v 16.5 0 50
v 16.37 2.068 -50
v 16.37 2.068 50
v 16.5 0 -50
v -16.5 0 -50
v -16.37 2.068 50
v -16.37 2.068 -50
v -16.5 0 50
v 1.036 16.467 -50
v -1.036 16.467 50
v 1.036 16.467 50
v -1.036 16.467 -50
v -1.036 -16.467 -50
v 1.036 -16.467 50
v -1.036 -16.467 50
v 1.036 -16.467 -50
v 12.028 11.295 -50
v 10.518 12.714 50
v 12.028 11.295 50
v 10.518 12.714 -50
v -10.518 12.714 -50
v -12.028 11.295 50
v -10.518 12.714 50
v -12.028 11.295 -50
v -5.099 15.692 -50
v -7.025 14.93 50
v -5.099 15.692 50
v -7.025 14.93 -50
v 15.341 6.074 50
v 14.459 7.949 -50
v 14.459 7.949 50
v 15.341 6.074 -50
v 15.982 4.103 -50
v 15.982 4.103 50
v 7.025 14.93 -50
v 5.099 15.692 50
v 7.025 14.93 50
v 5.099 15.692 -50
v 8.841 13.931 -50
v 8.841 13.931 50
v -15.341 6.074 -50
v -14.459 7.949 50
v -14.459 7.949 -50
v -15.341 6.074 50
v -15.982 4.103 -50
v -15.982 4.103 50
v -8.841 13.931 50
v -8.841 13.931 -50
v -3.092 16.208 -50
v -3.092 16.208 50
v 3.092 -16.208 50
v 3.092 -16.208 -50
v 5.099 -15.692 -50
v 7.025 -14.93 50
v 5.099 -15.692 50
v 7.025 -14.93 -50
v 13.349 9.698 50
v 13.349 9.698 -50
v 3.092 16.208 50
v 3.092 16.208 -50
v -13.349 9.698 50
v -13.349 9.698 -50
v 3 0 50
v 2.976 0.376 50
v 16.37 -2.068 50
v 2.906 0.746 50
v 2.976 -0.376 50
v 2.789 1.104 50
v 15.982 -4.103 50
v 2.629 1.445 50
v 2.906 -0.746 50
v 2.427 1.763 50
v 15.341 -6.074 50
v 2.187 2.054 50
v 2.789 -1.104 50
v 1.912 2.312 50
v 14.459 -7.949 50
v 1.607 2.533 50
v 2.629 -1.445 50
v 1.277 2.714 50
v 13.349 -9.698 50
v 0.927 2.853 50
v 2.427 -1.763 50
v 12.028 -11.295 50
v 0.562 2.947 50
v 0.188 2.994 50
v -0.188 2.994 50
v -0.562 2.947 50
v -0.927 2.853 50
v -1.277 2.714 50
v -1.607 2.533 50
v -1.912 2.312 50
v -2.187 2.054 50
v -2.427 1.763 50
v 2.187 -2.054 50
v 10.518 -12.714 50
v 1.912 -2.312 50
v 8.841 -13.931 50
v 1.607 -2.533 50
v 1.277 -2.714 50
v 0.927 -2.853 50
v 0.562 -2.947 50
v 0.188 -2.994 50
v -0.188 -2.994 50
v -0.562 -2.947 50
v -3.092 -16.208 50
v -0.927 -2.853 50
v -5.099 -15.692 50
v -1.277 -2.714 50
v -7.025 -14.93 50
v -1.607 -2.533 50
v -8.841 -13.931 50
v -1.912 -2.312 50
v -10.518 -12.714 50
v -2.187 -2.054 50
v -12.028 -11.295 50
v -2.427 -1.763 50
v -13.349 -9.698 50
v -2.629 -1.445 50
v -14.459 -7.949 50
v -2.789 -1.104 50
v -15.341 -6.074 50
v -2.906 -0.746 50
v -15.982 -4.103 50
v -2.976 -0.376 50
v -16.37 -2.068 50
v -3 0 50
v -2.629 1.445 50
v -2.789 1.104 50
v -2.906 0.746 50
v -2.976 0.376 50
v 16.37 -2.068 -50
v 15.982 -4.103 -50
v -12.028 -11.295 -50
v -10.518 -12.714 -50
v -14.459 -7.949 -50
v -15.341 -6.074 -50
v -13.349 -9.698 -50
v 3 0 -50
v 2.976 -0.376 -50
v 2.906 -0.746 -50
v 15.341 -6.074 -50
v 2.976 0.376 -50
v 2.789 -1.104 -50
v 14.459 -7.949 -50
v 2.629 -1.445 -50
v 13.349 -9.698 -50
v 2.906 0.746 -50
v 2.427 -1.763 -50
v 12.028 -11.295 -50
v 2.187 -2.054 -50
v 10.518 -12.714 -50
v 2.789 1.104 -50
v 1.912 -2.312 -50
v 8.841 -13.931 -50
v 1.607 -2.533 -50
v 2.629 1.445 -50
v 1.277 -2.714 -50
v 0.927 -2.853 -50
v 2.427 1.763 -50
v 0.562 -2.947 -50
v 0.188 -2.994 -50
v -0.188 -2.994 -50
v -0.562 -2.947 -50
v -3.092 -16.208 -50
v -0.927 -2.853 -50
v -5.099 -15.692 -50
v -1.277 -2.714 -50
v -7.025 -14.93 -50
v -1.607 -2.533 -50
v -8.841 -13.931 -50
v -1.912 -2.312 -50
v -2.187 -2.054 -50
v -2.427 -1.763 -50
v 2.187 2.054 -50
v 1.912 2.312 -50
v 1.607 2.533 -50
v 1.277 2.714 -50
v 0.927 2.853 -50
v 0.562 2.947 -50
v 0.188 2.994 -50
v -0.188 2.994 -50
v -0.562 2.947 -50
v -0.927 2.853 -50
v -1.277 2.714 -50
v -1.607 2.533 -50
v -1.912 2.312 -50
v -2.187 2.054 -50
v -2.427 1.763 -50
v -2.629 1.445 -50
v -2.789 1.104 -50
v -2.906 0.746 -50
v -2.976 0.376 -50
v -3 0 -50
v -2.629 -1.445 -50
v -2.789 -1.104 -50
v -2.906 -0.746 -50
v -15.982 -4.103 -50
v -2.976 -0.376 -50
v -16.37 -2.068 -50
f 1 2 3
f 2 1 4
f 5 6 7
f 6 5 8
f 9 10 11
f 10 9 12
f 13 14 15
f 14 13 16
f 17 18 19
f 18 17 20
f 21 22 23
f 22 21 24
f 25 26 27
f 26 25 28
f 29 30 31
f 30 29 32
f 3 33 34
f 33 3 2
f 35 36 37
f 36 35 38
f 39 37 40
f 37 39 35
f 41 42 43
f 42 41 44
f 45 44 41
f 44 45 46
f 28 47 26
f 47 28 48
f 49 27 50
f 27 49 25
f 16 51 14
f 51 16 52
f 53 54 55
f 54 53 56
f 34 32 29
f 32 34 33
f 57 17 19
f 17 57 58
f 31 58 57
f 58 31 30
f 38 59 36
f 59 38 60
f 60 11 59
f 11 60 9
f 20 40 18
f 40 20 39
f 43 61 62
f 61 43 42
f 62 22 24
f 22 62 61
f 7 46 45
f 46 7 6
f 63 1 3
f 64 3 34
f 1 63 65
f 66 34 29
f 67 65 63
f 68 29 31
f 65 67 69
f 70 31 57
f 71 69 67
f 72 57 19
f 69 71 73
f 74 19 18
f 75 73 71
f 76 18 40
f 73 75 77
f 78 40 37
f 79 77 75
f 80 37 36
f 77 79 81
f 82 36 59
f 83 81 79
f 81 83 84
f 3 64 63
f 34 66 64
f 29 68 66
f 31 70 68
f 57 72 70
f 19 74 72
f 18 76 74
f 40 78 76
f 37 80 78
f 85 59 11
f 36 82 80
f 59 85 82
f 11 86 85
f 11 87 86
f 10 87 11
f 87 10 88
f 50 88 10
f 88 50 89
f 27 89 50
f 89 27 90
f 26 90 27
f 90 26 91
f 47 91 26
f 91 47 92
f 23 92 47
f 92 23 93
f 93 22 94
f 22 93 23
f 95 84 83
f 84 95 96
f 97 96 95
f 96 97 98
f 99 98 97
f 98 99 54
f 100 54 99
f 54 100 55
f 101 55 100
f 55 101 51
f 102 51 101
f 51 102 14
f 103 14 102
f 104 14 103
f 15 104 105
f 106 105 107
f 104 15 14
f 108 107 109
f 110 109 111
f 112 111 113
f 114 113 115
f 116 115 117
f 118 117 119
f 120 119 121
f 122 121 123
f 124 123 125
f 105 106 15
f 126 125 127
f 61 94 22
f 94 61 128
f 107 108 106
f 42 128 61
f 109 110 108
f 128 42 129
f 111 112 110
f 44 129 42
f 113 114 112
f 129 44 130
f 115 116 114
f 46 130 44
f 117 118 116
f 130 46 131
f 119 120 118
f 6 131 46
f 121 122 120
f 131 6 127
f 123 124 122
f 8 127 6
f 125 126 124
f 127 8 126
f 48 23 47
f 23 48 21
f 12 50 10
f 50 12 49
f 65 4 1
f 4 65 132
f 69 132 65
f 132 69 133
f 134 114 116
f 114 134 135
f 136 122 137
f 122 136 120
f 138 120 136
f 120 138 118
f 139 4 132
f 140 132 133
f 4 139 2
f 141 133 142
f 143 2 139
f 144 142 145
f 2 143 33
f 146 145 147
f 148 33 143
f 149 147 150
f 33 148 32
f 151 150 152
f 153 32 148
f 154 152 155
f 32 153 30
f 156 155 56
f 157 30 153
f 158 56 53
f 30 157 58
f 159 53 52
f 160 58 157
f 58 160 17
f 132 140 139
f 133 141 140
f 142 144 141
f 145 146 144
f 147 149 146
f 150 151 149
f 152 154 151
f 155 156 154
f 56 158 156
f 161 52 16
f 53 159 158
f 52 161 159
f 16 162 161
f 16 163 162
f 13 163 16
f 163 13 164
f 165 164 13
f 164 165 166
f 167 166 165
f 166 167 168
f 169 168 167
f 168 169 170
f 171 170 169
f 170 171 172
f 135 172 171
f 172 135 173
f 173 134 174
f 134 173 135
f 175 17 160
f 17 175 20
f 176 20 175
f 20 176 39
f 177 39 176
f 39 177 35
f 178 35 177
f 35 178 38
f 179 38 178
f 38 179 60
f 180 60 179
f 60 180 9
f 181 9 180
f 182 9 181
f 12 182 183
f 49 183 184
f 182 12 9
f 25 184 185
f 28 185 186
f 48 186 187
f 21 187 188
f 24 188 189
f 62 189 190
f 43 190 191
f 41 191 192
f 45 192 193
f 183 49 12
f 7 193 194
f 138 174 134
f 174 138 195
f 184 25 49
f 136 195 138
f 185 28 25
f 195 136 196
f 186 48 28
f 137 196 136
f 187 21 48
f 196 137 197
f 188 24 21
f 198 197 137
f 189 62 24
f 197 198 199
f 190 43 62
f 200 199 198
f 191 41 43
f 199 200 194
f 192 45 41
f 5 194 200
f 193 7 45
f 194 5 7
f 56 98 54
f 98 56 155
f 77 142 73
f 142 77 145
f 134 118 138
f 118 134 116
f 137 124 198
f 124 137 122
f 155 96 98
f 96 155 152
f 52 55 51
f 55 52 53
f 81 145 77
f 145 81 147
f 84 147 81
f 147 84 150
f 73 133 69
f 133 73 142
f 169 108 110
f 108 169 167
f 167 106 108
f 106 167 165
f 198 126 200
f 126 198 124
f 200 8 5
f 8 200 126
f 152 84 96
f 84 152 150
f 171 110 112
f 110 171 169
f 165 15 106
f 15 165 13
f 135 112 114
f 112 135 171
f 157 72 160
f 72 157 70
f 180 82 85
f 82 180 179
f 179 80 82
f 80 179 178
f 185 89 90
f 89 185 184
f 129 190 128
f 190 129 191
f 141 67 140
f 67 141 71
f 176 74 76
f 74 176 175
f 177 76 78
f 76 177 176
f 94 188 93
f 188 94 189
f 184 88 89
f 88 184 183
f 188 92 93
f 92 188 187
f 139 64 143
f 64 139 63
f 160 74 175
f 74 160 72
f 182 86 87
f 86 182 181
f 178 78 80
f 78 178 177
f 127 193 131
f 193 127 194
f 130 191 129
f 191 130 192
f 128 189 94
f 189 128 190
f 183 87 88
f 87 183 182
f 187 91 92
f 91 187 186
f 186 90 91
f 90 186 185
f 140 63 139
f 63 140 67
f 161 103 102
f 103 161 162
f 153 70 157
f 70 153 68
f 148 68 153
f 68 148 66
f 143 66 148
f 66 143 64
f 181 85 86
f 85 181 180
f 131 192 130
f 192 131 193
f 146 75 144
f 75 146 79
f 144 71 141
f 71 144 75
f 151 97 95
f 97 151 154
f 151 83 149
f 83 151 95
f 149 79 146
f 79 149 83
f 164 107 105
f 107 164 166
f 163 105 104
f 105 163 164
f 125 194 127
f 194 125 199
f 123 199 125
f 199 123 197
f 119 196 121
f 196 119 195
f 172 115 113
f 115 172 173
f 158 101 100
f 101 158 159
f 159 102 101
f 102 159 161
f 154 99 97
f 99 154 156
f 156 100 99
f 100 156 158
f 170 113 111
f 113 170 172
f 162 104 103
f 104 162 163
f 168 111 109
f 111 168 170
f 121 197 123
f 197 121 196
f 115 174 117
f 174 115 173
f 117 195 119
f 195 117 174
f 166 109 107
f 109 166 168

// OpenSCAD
$fn = 50;


difference() {
	union() {
		translate(v = [0, 0, -50.0000000000]) {
			cylinder(h = 100, r = 16.5000000000);
		}
	}
	union() {
		translate(v = [0, 0, -100.0000000000]) {
			cylinder(h = 200, r = 3);
		}
	}
}
